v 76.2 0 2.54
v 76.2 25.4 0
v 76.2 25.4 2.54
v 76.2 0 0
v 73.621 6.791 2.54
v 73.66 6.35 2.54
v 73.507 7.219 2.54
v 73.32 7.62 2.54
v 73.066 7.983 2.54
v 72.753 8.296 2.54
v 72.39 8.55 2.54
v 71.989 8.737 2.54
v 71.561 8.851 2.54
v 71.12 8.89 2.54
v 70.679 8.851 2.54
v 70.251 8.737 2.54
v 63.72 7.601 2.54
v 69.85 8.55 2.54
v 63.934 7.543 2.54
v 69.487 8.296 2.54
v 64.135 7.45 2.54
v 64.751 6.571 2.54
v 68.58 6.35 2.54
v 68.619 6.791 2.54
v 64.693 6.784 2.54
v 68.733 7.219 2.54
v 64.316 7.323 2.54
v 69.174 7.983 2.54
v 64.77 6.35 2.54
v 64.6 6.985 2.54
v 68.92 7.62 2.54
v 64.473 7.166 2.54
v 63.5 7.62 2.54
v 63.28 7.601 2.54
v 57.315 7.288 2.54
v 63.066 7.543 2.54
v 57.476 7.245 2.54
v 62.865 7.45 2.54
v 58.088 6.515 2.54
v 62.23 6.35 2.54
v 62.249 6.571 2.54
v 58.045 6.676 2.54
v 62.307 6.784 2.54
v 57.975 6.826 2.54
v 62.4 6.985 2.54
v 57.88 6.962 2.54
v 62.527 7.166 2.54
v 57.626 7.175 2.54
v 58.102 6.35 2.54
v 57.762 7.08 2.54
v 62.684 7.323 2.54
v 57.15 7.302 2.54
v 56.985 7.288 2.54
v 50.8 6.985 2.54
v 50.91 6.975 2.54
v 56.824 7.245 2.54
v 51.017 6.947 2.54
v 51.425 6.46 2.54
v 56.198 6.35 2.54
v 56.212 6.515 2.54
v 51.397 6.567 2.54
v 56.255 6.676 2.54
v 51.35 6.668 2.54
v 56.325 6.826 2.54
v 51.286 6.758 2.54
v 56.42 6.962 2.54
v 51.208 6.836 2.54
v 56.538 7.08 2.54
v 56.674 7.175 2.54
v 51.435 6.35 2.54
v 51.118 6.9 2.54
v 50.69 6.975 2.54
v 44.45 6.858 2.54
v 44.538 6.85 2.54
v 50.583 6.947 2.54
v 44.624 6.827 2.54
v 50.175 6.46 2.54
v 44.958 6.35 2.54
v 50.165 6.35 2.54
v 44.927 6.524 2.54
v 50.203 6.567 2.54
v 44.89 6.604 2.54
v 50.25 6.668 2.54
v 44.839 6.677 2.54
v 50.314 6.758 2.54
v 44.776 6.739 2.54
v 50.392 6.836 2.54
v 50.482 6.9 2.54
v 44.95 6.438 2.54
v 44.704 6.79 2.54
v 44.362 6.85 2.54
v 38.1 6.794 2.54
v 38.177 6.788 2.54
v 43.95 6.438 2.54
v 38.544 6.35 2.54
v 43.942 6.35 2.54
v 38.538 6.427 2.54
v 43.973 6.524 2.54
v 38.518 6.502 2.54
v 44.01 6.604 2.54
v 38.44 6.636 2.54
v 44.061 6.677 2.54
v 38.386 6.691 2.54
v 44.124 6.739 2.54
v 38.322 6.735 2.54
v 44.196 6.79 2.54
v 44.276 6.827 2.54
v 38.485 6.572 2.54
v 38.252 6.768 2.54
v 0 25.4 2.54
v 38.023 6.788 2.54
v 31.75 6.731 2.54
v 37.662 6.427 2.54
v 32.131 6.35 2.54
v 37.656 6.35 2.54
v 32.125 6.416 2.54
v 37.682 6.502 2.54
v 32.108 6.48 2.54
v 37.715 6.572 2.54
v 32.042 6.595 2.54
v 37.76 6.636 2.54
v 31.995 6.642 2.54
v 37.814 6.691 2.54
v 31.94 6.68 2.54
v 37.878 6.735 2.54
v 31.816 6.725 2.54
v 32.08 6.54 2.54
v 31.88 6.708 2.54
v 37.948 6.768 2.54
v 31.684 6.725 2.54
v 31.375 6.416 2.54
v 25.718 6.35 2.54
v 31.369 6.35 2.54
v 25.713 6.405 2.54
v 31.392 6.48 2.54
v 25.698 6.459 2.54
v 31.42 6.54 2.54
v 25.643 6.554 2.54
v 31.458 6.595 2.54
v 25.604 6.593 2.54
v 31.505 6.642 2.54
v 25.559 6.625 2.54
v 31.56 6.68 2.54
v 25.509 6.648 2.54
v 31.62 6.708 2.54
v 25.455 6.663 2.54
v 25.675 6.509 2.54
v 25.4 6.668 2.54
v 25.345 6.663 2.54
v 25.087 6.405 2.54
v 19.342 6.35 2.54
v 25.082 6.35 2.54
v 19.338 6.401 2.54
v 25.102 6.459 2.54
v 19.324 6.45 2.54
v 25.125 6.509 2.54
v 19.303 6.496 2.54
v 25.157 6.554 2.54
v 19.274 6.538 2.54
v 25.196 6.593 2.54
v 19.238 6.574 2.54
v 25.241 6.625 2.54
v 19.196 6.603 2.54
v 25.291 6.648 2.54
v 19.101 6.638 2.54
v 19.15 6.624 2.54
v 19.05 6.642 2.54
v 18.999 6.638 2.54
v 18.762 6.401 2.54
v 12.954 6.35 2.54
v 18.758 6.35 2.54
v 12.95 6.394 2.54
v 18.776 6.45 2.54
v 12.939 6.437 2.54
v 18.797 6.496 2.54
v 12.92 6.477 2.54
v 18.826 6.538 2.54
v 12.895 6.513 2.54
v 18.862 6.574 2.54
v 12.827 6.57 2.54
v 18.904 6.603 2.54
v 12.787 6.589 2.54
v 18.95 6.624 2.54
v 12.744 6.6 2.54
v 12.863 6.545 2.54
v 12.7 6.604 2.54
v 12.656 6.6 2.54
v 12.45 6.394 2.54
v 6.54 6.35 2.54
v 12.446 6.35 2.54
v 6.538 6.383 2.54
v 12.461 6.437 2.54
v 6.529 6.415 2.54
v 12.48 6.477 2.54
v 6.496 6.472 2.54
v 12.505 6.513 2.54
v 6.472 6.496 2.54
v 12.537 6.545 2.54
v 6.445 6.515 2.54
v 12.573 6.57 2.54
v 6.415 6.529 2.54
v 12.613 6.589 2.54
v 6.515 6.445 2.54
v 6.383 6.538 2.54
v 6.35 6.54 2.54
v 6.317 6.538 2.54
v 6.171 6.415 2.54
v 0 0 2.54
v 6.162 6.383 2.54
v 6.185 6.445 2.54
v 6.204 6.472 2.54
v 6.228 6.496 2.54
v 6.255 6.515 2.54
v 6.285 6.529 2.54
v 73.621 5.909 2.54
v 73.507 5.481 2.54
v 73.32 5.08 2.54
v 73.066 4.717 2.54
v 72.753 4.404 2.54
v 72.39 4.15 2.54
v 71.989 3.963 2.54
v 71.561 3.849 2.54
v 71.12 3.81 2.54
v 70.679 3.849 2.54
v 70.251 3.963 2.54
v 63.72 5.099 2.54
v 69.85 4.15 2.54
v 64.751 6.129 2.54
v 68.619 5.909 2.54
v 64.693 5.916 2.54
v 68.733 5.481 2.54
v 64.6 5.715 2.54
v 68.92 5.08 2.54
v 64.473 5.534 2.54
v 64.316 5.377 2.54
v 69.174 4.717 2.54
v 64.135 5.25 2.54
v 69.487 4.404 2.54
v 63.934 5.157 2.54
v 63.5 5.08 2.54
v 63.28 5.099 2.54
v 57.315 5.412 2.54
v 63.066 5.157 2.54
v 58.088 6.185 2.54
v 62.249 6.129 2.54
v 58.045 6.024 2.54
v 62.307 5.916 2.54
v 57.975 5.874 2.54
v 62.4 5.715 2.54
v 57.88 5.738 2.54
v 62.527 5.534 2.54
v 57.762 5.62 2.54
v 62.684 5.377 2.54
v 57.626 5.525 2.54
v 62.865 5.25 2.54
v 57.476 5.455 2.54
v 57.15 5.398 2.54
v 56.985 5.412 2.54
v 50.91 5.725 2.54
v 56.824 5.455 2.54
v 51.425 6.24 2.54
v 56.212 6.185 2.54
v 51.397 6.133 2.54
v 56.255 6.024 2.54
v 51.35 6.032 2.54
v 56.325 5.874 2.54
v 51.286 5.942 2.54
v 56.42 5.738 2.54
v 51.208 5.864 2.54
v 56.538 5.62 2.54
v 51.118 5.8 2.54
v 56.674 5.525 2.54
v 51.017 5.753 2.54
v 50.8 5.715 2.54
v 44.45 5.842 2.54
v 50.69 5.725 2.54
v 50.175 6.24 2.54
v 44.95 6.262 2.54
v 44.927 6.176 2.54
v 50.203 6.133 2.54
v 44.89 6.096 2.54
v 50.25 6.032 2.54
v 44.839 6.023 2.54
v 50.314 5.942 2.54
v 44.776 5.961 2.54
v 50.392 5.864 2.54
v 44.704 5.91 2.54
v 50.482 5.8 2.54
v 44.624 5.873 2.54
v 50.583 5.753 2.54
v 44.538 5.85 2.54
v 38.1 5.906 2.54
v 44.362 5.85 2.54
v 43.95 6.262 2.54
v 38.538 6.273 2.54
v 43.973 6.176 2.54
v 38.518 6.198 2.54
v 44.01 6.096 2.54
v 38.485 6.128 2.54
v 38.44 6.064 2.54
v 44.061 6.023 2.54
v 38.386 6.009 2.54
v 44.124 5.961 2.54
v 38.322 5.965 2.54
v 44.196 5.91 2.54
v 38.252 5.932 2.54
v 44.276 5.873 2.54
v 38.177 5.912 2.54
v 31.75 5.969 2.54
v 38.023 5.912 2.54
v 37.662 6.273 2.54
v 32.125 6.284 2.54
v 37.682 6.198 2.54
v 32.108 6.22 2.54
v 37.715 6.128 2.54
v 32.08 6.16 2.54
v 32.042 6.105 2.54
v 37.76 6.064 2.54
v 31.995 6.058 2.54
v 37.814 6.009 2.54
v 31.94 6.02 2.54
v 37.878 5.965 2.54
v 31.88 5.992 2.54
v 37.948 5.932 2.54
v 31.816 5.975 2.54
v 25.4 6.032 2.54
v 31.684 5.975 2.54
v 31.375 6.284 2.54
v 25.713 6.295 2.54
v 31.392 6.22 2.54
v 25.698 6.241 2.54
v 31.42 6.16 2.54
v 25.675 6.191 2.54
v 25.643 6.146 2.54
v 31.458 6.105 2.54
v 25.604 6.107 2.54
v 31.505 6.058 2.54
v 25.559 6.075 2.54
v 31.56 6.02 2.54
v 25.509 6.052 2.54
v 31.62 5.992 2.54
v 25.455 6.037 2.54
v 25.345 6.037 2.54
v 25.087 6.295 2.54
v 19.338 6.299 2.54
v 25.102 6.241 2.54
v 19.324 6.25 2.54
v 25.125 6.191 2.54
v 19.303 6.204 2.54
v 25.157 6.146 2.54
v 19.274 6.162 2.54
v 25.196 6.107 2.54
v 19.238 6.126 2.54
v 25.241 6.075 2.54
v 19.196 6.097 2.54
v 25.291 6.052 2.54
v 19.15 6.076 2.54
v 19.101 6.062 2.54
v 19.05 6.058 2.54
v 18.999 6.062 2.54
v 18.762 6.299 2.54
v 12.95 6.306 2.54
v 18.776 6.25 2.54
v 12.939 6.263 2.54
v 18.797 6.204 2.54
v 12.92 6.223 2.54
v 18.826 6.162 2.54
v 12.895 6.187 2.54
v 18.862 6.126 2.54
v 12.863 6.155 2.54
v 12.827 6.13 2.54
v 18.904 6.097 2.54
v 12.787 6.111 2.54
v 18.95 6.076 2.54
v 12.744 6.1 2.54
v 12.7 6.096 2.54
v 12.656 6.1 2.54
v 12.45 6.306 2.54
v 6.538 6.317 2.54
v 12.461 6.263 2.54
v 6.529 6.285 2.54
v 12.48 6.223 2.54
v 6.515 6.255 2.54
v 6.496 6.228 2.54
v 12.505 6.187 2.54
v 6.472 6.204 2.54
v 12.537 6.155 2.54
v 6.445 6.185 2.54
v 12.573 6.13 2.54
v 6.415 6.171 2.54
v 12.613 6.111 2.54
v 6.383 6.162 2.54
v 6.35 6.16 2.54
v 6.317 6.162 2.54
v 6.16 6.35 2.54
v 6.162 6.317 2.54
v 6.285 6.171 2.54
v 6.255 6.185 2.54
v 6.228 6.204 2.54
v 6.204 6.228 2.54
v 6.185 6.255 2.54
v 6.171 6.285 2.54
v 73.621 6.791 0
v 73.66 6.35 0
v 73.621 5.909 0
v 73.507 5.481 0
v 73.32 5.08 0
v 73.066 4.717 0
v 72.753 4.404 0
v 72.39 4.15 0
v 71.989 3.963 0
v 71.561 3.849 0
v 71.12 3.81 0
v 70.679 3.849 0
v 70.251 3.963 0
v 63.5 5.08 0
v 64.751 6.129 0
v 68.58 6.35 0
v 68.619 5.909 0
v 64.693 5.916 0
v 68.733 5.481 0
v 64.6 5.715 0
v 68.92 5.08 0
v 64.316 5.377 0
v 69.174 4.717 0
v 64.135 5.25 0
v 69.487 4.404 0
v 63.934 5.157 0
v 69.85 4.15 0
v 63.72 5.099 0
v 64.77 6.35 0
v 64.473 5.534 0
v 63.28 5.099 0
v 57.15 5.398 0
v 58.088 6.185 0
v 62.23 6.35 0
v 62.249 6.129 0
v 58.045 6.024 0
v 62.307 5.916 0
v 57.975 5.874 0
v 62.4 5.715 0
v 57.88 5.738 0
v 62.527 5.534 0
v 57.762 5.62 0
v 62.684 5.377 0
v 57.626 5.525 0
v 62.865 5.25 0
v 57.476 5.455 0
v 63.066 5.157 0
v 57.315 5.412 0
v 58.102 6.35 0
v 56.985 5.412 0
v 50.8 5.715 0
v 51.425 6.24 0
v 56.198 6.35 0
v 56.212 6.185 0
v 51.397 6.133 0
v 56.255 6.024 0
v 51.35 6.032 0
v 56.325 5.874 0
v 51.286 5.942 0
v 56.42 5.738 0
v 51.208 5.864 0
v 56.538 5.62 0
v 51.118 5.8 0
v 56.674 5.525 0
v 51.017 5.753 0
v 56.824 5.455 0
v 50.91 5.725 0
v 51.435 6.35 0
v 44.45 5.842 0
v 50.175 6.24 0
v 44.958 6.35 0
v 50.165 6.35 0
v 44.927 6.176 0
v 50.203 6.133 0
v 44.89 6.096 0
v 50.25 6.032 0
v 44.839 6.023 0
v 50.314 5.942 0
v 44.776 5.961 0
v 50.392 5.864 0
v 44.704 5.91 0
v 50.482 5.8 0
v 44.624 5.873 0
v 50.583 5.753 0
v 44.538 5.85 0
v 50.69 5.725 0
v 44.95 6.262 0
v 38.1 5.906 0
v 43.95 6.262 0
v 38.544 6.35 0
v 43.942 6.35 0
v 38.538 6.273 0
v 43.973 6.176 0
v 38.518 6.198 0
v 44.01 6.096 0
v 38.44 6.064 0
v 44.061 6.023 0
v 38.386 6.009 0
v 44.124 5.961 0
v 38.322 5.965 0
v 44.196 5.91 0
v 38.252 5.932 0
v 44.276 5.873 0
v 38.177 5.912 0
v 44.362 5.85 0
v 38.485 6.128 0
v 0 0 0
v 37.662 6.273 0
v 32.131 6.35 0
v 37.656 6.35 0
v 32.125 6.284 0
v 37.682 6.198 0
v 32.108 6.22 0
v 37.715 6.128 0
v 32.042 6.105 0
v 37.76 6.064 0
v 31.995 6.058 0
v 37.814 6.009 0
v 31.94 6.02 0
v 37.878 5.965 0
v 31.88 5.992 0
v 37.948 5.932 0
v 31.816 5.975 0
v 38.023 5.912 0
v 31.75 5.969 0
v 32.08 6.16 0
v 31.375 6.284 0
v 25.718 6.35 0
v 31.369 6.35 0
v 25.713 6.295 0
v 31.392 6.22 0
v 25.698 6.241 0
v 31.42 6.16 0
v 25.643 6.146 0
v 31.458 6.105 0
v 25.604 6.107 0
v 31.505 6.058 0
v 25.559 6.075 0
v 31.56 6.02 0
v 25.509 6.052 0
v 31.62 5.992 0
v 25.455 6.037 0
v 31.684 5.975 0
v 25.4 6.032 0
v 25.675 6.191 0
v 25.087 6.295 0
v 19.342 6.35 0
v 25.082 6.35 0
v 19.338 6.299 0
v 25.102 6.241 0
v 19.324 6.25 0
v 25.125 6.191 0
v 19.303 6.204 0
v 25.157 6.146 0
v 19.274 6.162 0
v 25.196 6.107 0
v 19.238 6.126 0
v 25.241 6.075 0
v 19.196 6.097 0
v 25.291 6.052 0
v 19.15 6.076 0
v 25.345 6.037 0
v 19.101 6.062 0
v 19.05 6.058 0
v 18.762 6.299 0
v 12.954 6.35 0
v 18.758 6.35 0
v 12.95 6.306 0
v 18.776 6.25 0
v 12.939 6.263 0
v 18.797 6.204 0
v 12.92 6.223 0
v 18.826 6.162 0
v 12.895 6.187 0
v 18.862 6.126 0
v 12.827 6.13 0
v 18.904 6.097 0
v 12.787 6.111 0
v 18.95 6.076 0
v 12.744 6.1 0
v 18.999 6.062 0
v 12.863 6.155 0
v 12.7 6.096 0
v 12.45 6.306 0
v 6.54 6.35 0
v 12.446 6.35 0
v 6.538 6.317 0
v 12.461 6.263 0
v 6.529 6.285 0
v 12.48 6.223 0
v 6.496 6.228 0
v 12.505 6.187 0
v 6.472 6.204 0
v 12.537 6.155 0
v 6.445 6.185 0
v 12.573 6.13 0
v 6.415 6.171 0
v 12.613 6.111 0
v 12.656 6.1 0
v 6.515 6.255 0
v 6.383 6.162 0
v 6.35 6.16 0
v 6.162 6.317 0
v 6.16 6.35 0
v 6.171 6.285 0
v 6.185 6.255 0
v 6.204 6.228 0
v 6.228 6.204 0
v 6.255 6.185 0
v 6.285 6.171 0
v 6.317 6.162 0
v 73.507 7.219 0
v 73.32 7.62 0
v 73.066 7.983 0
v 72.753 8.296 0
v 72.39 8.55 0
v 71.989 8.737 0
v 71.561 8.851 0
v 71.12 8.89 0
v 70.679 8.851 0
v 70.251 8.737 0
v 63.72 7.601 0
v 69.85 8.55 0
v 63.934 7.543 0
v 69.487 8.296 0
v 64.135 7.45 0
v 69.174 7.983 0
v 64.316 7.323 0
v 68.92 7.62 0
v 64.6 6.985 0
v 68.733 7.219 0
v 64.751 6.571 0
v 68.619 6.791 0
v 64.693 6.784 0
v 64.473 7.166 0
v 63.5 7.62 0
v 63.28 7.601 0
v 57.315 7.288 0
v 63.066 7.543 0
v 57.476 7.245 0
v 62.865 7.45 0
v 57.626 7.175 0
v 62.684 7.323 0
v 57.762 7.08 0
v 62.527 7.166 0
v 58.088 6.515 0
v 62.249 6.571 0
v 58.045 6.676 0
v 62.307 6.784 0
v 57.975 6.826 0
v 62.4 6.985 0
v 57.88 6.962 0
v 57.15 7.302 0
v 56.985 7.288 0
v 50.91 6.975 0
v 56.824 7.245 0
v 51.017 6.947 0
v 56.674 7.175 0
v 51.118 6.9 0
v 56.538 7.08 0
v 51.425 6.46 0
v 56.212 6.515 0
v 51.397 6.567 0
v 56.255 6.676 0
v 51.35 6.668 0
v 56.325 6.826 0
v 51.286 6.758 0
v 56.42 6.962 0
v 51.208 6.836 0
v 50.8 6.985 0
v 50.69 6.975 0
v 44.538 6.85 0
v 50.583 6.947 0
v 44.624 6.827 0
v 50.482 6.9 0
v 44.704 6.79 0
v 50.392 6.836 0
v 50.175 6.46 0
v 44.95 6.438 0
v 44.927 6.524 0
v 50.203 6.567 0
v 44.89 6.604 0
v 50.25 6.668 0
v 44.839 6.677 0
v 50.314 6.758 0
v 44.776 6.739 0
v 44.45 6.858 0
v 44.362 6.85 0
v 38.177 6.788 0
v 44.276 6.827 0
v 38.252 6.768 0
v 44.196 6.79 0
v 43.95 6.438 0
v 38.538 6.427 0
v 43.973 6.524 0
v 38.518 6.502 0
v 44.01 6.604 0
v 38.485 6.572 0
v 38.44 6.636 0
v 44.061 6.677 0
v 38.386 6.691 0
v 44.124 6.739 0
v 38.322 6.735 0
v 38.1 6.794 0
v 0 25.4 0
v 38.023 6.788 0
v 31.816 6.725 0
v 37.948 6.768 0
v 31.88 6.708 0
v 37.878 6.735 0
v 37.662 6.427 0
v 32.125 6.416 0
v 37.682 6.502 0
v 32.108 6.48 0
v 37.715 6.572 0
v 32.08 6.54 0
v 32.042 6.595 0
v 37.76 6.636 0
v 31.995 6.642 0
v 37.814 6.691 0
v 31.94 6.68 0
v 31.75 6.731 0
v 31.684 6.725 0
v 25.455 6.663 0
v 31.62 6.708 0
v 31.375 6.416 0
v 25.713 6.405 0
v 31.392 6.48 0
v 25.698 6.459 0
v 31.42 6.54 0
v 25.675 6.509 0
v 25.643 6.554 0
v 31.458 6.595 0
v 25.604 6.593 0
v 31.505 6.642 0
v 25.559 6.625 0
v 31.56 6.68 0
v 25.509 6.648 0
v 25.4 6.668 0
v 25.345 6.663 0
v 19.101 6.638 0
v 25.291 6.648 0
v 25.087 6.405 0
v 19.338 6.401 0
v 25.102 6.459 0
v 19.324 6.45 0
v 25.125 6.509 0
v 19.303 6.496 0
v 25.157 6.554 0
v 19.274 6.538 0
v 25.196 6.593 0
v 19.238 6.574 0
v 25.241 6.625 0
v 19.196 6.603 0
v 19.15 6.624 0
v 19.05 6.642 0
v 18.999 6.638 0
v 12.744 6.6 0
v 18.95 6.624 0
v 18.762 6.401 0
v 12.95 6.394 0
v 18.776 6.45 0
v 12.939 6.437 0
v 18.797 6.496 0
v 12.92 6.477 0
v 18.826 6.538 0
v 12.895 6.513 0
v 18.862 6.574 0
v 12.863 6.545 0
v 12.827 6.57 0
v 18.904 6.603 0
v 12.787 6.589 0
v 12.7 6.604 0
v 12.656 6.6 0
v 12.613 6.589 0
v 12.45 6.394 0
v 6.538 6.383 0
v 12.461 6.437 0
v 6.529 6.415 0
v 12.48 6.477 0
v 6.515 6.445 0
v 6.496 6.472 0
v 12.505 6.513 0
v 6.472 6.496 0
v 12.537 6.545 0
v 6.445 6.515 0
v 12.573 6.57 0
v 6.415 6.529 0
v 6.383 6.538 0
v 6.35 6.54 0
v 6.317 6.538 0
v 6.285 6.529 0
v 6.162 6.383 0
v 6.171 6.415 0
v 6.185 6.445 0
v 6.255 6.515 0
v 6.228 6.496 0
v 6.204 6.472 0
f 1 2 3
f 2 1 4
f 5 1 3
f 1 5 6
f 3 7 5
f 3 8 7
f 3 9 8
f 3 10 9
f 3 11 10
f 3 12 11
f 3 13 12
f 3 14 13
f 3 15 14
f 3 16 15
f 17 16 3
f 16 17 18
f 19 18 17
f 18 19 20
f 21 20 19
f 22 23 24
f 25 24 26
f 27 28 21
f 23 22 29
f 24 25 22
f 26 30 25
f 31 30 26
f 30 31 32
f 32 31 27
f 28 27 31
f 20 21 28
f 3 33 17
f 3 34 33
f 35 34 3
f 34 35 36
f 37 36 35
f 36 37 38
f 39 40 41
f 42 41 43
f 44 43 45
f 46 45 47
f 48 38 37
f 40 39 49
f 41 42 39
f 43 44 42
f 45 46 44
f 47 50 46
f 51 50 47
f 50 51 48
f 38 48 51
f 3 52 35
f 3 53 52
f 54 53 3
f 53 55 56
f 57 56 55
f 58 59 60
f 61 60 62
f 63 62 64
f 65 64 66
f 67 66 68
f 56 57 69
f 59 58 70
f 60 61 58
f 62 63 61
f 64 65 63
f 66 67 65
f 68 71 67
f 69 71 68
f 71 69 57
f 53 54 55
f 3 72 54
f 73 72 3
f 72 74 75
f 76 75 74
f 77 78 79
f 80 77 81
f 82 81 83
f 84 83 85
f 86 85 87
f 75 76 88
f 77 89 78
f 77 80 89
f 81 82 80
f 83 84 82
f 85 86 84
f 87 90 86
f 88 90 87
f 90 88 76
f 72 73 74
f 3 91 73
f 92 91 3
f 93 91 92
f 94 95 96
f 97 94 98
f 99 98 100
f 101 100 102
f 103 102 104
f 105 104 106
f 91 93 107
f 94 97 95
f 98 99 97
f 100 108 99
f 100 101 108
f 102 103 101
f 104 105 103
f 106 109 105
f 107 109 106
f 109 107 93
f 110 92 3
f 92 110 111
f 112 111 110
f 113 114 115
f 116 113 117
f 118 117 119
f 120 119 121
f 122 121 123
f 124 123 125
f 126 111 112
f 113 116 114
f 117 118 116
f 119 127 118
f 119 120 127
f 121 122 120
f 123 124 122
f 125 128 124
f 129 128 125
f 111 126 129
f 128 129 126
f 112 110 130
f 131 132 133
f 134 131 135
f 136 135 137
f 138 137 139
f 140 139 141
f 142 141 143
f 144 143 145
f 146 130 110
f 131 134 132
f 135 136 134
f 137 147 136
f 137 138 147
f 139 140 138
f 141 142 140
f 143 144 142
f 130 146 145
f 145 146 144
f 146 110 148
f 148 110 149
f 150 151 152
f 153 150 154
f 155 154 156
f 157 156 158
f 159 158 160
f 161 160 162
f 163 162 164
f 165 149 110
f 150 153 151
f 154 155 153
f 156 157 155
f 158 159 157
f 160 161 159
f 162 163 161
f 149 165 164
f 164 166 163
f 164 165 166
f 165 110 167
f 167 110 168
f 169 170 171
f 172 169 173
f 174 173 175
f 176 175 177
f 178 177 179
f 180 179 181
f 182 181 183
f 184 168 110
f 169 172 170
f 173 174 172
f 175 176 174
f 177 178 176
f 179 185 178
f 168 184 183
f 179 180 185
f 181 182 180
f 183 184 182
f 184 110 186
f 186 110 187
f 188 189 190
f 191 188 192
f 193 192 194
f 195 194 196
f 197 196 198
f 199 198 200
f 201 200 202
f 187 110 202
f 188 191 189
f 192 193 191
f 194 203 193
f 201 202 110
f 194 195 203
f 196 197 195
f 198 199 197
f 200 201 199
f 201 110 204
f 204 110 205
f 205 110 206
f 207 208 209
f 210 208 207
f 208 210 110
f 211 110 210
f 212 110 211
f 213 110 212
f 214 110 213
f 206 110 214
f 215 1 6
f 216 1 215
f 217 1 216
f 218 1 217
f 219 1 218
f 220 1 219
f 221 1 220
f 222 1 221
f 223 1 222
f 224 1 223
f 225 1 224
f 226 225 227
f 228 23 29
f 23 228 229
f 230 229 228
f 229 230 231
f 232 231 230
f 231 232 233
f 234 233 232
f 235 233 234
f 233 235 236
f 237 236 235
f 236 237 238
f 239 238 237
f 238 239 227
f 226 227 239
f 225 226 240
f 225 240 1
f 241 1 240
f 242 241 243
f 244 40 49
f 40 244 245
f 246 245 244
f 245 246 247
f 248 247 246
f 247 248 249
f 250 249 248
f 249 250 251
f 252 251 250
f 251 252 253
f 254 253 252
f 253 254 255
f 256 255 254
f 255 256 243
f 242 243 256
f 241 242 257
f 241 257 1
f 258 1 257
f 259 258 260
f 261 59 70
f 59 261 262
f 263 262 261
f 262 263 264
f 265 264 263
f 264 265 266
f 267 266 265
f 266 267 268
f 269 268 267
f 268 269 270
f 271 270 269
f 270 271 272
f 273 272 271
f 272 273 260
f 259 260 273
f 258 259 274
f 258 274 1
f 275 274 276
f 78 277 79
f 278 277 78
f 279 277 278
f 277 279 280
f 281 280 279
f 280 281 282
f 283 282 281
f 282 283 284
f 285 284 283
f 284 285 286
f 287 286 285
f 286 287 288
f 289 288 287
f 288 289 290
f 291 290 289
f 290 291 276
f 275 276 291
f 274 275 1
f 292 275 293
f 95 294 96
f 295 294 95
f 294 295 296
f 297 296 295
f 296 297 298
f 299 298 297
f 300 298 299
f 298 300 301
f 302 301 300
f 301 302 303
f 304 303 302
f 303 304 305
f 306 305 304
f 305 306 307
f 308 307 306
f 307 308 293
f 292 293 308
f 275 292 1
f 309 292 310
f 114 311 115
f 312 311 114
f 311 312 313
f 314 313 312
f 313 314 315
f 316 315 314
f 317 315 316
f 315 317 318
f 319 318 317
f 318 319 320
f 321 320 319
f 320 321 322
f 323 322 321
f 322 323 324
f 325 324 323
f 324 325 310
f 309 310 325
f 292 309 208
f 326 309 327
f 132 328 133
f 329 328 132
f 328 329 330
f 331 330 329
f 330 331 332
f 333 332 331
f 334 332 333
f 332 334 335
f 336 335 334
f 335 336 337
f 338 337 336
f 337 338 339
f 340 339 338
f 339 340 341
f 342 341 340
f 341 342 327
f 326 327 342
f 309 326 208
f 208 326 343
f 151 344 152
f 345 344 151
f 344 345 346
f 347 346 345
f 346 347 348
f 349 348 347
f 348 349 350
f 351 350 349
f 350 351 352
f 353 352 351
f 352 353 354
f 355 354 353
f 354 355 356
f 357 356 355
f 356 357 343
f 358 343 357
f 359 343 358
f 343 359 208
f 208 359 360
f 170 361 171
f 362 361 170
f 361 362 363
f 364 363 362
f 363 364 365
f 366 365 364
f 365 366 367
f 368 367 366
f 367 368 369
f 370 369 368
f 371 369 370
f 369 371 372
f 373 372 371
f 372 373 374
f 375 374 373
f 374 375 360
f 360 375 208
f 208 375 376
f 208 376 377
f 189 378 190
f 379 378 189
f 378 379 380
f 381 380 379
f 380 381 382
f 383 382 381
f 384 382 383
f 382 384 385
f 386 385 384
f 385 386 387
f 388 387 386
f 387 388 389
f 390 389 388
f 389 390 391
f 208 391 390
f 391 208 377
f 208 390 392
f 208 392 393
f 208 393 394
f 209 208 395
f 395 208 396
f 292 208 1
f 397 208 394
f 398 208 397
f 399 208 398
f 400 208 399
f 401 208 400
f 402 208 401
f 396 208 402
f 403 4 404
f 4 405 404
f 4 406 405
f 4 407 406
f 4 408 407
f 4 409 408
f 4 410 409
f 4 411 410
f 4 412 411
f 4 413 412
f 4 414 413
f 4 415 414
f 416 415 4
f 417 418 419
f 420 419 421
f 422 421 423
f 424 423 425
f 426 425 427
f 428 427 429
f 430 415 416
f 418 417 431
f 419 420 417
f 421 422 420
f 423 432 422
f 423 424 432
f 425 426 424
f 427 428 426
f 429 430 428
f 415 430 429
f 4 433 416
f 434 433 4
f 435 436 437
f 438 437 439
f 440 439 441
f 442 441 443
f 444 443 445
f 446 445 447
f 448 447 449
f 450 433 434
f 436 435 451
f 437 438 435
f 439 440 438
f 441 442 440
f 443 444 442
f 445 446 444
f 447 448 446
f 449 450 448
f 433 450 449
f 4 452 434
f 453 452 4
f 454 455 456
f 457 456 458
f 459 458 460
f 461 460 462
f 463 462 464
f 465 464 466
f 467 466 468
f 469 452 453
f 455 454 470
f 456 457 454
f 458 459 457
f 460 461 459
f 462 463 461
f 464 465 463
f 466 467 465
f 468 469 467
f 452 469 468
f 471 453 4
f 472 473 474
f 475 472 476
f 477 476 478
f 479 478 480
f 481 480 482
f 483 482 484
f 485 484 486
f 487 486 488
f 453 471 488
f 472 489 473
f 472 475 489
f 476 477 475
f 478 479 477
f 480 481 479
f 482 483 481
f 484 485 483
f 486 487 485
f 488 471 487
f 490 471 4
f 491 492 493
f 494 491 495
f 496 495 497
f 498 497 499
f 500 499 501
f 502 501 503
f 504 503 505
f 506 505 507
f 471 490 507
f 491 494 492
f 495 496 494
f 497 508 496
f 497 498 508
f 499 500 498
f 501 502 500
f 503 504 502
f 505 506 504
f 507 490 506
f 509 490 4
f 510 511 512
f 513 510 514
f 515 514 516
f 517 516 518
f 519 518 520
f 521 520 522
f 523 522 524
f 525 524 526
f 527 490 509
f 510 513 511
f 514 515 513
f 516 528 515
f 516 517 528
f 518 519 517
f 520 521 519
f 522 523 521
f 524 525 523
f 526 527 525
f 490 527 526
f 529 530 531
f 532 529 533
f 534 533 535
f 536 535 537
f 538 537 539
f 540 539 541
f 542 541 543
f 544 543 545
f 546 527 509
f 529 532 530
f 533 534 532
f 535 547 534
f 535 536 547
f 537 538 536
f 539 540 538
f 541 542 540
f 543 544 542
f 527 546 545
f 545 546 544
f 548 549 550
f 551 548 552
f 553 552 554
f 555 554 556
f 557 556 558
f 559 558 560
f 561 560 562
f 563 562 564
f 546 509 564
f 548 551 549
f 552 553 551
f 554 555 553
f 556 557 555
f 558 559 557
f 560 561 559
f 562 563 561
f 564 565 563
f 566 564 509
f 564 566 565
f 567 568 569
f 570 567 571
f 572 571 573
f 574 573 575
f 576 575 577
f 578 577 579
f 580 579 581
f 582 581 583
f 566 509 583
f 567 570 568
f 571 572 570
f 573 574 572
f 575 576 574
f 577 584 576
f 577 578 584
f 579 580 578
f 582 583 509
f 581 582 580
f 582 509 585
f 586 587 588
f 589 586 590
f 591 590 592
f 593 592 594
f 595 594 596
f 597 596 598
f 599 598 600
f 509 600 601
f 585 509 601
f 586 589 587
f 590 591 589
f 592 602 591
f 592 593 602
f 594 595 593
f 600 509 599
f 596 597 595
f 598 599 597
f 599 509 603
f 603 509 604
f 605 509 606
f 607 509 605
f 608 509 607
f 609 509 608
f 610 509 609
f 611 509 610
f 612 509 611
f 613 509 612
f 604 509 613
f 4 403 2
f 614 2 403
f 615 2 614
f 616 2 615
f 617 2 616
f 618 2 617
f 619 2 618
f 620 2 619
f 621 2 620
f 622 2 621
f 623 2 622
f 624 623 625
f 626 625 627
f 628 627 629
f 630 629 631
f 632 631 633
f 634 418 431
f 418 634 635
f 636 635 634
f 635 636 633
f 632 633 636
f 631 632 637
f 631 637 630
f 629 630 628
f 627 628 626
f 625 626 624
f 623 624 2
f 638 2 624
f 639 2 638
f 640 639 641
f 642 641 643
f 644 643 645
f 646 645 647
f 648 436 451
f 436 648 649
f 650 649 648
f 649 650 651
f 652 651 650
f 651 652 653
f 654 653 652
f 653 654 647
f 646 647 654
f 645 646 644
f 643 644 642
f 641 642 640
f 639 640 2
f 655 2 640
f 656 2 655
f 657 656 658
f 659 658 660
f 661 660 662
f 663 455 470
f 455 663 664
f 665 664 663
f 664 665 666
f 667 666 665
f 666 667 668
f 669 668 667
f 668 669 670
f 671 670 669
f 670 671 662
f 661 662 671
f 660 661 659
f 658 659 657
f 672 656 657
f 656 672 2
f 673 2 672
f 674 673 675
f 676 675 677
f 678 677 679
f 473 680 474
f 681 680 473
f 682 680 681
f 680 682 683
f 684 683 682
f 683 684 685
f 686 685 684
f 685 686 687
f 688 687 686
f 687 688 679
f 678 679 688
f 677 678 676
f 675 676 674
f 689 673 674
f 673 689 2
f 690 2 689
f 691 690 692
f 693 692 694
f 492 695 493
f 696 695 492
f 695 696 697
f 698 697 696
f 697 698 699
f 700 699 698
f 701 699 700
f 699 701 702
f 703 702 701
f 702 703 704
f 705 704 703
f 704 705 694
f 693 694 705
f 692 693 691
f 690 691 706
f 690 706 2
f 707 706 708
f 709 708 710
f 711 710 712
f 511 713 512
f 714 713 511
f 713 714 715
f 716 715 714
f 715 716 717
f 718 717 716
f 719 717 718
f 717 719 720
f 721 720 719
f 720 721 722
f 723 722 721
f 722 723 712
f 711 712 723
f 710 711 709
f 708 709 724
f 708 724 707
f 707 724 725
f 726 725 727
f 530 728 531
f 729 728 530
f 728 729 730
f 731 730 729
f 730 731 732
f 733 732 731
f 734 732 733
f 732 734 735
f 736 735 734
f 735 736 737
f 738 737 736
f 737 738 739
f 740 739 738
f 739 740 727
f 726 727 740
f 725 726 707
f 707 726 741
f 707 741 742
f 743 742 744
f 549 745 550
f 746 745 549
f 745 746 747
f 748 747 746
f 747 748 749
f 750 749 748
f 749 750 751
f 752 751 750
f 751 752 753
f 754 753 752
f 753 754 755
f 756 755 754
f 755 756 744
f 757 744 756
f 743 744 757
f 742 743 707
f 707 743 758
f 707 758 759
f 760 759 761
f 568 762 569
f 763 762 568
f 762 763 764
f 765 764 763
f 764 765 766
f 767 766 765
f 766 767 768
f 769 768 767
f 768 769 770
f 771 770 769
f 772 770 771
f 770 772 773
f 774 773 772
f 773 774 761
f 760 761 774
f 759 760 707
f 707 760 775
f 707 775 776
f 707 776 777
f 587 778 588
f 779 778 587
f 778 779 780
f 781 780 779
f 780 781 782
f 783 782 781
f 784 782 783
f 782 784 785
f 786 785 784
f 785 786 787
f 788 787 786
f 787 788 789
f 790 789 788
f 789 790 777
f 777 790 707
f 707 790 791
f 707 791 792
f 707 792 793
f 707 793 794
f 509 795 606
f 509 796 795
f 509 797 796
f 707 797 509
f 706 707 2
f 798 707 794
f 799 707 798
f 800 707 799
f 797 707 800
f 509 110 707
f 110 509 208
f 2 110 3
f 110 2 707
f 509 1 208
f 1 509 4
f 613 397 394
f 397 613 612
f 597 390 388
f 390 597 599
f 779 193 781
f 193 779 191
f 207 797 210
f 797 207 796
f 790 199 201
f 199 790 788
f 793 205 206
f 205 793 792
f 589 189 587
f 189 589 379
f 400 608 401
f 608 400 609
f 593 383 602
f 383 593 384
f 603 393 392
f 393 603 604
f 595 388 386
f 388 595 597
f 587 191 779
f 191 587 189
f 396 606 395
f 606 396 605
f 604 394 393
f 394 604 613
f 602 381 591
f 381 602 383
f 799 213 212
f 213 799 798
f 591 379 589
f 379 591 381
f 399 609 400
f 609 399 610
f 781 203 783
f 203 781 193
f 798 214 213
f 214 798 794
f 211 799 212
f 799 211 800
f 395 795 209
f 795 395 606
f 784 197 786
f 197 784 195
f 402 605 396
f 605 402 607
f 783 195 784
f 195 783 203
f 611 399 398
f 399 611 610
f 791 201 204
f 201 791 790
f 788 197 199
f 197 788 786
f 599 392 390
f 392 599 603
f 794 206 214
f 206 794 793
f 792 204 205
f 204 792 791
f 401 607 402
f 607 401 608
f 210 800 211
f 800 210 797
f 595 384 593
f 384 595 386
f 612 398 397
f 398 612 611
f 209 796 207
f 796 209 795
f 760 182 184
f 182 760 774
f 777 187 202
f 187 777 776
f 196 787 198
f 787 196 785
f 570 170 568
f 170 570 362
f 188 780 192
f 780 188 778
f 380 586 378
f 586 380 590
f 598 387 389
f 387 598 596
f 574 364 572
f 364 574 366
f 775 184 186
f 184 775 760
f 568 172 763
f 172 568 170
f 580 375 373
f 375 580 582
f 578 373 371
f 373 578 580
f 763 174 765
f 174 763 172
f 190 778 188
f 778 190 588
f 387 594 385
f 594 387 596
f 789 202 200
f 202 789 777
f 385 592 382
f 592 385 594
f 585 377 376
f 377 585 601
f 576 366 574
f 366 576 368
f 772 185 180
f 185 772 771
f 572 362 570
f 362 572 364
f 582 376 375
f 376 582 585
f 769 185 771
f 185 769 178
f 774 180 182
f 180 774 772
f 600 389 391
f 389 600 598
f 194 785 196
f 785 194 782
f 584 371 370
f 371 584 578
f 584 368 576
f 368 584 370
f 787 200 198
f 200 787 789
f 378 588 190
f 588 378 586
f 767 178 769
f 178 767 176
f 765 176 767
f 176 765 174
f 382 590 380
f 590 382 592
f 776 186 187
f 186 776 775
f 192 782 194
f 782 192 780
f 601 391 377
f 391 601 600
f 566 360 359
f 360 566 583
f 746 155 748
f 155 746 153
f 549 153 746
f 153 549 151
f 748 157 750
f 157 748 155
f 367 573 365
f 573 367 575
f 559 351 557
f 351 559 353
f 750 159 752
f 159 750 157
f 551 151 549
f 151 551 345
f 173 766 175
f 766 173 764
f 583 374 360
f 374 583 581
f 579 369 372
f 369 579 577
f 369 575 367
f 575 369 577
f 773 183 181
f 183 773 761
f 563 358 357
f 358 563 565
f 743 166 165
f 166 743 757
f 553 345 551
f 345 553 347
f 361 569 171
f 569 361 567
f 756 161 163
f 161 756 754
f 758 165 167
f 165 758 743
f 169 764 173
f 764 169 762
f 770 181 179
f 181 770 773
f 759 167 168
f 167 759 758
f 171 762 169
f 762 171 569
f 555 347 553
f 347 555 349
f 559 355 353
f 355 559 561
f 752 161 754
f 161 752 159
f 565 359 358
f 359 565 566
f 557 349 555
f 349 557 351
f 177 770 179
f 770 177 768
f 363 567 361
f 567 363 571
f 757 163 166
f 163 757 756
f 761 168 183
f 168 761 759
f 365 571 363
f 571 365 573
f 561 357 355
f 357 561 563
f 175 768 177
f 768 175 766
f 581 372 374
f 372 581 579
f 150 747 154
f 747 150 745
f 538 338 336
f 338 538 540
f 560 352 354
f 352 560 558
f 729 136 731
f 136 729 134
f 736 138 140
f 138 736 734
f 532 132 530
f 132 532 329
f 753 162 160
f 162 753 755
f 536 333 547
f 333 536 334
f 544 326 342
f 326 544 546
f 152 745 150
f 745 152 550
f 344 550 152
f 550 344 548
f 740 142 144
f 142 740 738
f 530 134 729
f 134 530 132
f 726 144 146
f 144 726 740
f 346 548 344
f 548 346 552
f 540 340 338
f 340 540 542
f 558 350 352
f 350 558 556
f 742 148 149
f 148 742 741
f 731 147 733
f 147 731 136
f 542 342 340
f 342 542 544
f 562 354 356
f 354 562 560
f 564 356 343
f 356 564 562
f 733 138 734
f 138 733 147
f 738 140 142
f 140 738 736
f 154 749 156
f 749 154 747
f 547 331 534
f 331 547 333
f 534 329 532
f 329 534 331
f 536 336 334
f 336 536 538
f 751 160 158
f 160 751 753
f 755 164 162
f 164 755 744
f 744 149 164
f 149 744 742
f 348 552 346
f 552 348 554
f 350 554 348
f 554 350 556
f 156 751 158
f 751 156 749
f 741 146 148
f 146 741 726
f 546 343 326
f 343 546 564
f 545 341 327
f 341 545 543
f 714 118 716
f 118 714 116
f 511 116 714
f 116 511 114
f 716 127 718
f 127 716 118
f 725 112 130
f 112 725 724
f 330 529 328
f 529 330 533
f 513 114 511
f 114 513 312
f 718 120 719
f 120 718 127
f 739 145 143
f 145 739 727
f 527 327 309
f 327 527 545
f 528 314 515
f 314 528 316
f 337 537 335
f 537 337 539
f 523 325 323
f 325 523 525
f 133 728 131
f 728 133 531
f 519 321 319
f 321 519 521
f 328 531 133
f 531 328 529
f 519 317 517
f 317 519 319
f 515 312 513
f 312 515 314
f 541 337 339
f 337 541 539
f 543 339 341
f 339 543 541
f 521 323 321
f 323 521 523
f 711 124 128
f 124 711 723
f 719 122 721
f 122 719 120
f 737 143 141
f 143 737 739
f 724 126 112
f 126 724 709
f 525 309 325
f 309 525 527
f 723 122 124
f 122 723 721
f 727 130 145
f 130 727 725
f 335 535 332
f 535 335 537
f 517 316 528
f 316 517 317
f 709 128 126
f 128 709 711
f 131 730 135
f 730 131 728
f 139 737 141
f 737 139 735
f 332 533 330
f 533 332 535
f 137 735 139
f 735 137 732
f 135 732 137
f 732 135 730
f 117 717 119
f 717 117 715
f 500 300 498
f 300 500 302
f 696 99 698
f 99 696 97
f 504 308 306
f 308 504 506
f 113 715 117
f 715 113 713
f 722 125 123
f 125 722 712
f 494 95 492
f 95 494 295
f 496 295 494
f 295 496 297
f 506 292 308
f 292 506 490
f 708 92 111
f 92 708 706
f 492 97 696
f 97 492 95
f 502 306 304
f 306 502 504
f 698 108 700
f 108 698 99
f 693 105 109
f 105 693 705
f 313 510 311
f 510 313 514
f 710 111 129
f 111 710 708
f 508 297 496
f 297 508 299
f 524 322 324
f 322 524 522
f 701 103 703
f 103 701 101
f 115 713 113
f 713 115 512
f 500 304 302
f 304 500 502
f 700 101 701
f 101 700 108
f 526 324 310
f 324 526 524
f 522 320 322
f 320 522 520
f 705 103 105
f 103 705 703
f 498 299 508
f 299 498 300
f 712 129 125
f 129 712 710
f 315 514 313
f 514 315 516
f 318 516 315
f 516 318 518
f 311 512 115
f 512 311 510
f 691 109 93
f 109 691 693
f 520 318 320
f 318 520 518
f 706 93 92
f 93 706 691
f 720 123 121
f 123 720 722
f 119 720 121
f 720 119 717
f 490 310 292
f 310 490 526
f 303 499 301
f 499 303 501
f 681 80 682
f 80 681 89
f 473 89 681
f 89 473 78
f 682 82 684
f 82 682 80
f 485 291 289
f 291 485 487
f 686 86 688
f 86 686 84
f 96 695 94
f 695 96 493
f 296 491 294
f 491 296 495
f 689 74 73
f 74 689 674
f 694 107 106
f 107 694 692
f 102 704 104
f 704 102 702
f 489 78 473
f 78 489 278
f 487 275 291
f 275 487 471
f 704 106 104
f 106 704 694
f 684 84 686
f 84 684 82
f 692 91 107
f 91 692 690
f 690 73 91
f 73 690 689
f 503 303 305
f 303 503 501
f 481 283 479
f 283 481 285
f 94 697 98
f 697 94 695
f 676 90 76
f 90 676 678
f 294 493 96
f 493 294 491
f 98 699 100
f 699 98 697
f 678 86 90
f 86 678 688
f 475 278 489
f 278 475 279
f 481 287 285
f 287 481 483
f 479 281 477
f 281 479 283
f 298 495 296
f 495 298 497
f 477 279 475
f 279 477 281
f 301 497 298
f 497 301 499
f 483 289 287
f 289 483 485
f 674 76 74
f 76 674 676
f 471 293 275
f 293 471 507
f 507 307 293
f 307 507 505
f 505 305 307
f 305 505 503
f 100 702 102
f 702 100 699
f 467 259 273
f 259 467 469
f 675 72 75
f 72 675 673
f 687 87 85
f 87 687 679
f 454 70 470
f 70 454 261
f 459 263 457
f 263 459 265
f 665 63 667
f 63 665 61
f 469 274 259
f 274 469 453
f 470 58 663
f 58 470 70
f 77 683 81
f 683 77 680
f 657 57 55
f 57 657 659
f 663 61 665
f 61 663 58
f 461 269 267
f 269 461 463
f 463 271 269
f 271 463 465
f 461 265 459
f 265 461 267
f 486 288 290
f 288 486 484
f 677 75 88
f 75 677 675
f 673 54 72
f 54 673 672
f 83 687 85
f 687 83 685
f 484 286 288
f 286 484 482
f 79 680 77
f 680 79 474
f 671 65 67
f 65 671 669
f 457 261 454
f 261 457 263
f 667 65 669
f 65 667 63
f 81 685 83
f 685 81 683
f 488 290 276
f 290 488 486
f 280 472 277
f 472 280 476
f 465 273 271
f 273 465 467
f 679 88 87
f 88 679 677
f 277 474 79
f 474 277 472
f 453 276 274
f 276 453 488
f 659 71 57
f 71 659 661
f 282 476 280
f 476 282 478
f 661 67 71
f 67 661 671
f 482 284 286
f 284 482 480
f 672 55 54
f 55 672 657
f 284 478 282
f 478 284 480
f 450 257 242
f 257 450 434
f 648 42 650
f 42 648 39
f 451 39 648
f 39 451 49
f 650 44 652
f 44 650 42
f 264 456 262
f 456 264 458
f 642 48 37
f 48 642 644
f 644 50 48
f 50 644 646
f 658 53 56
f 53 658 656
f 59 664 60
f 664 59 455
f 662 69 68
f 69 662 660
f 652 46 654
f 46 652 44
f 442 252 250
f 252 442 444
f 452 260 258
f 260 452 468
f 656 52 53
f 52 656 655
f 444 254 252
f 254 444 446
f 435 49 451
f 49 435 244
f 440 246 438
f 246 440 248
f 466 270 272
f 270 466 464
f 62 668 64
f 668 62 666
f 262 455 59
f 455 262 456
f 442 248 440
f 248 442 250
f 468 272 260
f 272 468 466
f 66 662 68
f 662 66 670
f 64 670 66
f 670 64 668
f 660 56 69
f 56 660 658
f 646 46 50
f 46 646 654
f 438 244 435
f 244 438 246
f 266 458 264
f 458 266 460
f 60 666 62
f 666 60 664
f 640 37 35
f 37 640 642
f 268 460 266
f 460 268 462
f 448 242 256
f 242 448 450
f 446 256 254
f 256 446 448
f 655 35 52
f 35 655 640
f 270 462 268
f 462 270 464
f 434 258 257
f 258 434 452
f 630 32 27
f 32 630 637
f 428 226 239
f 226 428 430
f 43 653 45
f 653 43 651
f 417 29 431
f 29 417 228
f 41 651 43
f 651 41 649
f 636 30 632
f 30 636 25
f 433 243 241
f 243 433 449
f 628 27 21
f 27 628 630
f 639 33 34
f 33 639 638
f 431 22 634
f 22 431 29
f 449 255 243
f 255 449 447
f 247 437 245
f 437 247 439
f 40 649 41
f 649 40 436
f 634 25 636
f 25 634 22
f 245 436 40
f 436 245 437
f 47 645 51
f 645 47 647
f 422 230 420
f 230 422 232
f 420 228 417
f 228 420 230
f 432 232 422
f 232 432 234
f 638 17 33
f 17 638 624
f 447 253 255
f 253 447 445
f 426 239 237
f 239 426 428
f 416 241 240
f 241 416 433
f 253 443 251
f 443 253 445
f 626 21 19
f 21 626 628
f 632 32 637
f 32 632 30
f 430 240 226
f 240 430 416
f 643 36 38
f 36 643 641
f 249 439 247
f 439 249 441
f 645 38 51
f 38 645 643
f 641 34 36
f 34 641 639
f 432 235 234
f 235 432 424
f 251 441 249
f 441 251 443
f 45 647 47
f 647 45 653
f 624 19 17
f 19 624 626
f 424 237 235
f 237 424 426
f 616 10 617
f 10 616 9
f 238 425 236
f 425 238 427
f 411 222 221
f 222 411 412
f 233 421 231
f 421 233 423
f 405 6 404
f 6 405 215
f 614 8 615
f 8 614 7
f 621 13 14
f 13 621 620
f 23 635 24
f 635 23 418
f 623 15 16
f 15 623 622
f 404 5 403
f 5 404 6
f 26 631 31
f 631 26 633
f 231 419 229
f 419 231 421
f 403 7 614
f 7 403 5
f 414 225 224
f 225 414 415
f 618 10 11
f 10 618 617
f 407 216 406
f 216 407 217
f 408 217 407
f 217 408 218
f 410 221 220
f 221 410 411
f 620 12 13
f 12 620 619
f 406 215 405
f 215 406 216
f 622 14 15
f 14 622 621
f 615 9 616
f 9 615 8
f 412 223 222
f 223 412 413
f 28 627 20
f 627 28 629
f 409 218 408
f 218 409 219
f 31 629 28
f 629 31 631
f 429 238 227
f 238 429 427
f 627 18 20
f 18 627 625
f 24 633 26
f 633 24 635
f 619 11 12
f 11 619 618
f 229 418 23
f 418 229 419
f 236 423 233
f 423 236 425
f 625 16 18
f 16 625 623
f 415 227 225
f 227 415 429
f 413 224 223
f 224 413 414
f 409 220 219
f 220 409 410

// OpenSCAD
inches_to_mm = 25.4;
pencil_padding = 0.003;
shaft_padding = 0.0015;
spacing = 0.2;

difference() {
  translate([0, 0, 0]) {
    cube([3 * inches_to_mm, 1 * inches_to_mm, 0.1 * inches_to_mm]);
  }
  // 0.015"
  translate([0.25 * inches_to_mm,0.25 * inches_to_mm,-0.5 * inches_to_mm]){
    cylinder(h=2 * inches_to_mm, d=0.015 * inches_to_mm, $fn=36);
  }
  // 0.02"
  translate([0.5 * inches_to_mm,0.25 * inches_to_mm,-0.5 * inches_to_mm]){
    cylinder(h=2 * inches_to_mm, d=0.02 * inches_to_mm, $fn=36);
  }
  // 0.023"
  translate([0.75 * inches_to_mm,0.25 * inches_to_mm,-0.5 * inches_to_mm]){
    cylinder(h=2 * inches_to_mm, d=0.023 * inches_to_mm, $fn=36);
  }
  // 0.025"
  translate([1.0 * inches_to_mm,0.25 * inches_to_mm,-0.5 * inches_to_mm]){
    cylinder(h=2 * inches_to_mm, d=0.025 * inches_to_mm, $fn=36);
  }
  // 0.03"
  translate([1.25 * inches_to_mm,0.25 * inches_to_mm,-0.5 * inches_to_mm]){
    cylinder(h=2 * inches_to_mm, d=0.03 * inches_to_mm, $fn=36);
  }
  // 0.035"
  translate([1.5 * inches_to_mm,0.25 * inches_to_mm,-0.5 * inches_to_mm]){
    cylinder(h=2 * inches_to_mm, d=0.035 * inches_to_mm, $fn=36);
  }
  // 0.04"
  translate([1.75 * inches_to_mm,0.25 * inches_to_mm,-0.5 * inches_to_mm]){
    cylinder(h=2 * inches_to_mm, d=0.04 * inches_to_mm, $fn=36);
  }
  // 0.05"
  translate([2.0 * inches_to_mm,0.25 * inches_to_mm,-0.5 * inches_to_mm]){
    cylinder(h=2 * inches_to_mm, d=0.05 * inches_to_mm, $fn=36);
  }
  // 0.075"
  translate([2.25 * inches_to_mm,0.25 * inches_to_mm,-0.5 * inches_to_mm]){
    cylinder(h=2 * inches_to_mm, d=0.075 * inches_to_mm, $fn=36);
  }
  // 0.1"
  translate([2.5 * inches_to_mm,0.25 * inches_to_mm,-0.5 * inches_to_mm]){
    cylinder(h=2 * inches_to_mm, d=0.1 * inches_to_mm, $fn=36);
  }
  // 0.2"
  translate([2.8 * inches_to_mm,0.25 * inches_to_mm,-0.5 * inches_to_mm]){
    cylinder(h=2 * inches_to_mm, d=0.2 * inches_to_mm, $fn=36);
  }
}
